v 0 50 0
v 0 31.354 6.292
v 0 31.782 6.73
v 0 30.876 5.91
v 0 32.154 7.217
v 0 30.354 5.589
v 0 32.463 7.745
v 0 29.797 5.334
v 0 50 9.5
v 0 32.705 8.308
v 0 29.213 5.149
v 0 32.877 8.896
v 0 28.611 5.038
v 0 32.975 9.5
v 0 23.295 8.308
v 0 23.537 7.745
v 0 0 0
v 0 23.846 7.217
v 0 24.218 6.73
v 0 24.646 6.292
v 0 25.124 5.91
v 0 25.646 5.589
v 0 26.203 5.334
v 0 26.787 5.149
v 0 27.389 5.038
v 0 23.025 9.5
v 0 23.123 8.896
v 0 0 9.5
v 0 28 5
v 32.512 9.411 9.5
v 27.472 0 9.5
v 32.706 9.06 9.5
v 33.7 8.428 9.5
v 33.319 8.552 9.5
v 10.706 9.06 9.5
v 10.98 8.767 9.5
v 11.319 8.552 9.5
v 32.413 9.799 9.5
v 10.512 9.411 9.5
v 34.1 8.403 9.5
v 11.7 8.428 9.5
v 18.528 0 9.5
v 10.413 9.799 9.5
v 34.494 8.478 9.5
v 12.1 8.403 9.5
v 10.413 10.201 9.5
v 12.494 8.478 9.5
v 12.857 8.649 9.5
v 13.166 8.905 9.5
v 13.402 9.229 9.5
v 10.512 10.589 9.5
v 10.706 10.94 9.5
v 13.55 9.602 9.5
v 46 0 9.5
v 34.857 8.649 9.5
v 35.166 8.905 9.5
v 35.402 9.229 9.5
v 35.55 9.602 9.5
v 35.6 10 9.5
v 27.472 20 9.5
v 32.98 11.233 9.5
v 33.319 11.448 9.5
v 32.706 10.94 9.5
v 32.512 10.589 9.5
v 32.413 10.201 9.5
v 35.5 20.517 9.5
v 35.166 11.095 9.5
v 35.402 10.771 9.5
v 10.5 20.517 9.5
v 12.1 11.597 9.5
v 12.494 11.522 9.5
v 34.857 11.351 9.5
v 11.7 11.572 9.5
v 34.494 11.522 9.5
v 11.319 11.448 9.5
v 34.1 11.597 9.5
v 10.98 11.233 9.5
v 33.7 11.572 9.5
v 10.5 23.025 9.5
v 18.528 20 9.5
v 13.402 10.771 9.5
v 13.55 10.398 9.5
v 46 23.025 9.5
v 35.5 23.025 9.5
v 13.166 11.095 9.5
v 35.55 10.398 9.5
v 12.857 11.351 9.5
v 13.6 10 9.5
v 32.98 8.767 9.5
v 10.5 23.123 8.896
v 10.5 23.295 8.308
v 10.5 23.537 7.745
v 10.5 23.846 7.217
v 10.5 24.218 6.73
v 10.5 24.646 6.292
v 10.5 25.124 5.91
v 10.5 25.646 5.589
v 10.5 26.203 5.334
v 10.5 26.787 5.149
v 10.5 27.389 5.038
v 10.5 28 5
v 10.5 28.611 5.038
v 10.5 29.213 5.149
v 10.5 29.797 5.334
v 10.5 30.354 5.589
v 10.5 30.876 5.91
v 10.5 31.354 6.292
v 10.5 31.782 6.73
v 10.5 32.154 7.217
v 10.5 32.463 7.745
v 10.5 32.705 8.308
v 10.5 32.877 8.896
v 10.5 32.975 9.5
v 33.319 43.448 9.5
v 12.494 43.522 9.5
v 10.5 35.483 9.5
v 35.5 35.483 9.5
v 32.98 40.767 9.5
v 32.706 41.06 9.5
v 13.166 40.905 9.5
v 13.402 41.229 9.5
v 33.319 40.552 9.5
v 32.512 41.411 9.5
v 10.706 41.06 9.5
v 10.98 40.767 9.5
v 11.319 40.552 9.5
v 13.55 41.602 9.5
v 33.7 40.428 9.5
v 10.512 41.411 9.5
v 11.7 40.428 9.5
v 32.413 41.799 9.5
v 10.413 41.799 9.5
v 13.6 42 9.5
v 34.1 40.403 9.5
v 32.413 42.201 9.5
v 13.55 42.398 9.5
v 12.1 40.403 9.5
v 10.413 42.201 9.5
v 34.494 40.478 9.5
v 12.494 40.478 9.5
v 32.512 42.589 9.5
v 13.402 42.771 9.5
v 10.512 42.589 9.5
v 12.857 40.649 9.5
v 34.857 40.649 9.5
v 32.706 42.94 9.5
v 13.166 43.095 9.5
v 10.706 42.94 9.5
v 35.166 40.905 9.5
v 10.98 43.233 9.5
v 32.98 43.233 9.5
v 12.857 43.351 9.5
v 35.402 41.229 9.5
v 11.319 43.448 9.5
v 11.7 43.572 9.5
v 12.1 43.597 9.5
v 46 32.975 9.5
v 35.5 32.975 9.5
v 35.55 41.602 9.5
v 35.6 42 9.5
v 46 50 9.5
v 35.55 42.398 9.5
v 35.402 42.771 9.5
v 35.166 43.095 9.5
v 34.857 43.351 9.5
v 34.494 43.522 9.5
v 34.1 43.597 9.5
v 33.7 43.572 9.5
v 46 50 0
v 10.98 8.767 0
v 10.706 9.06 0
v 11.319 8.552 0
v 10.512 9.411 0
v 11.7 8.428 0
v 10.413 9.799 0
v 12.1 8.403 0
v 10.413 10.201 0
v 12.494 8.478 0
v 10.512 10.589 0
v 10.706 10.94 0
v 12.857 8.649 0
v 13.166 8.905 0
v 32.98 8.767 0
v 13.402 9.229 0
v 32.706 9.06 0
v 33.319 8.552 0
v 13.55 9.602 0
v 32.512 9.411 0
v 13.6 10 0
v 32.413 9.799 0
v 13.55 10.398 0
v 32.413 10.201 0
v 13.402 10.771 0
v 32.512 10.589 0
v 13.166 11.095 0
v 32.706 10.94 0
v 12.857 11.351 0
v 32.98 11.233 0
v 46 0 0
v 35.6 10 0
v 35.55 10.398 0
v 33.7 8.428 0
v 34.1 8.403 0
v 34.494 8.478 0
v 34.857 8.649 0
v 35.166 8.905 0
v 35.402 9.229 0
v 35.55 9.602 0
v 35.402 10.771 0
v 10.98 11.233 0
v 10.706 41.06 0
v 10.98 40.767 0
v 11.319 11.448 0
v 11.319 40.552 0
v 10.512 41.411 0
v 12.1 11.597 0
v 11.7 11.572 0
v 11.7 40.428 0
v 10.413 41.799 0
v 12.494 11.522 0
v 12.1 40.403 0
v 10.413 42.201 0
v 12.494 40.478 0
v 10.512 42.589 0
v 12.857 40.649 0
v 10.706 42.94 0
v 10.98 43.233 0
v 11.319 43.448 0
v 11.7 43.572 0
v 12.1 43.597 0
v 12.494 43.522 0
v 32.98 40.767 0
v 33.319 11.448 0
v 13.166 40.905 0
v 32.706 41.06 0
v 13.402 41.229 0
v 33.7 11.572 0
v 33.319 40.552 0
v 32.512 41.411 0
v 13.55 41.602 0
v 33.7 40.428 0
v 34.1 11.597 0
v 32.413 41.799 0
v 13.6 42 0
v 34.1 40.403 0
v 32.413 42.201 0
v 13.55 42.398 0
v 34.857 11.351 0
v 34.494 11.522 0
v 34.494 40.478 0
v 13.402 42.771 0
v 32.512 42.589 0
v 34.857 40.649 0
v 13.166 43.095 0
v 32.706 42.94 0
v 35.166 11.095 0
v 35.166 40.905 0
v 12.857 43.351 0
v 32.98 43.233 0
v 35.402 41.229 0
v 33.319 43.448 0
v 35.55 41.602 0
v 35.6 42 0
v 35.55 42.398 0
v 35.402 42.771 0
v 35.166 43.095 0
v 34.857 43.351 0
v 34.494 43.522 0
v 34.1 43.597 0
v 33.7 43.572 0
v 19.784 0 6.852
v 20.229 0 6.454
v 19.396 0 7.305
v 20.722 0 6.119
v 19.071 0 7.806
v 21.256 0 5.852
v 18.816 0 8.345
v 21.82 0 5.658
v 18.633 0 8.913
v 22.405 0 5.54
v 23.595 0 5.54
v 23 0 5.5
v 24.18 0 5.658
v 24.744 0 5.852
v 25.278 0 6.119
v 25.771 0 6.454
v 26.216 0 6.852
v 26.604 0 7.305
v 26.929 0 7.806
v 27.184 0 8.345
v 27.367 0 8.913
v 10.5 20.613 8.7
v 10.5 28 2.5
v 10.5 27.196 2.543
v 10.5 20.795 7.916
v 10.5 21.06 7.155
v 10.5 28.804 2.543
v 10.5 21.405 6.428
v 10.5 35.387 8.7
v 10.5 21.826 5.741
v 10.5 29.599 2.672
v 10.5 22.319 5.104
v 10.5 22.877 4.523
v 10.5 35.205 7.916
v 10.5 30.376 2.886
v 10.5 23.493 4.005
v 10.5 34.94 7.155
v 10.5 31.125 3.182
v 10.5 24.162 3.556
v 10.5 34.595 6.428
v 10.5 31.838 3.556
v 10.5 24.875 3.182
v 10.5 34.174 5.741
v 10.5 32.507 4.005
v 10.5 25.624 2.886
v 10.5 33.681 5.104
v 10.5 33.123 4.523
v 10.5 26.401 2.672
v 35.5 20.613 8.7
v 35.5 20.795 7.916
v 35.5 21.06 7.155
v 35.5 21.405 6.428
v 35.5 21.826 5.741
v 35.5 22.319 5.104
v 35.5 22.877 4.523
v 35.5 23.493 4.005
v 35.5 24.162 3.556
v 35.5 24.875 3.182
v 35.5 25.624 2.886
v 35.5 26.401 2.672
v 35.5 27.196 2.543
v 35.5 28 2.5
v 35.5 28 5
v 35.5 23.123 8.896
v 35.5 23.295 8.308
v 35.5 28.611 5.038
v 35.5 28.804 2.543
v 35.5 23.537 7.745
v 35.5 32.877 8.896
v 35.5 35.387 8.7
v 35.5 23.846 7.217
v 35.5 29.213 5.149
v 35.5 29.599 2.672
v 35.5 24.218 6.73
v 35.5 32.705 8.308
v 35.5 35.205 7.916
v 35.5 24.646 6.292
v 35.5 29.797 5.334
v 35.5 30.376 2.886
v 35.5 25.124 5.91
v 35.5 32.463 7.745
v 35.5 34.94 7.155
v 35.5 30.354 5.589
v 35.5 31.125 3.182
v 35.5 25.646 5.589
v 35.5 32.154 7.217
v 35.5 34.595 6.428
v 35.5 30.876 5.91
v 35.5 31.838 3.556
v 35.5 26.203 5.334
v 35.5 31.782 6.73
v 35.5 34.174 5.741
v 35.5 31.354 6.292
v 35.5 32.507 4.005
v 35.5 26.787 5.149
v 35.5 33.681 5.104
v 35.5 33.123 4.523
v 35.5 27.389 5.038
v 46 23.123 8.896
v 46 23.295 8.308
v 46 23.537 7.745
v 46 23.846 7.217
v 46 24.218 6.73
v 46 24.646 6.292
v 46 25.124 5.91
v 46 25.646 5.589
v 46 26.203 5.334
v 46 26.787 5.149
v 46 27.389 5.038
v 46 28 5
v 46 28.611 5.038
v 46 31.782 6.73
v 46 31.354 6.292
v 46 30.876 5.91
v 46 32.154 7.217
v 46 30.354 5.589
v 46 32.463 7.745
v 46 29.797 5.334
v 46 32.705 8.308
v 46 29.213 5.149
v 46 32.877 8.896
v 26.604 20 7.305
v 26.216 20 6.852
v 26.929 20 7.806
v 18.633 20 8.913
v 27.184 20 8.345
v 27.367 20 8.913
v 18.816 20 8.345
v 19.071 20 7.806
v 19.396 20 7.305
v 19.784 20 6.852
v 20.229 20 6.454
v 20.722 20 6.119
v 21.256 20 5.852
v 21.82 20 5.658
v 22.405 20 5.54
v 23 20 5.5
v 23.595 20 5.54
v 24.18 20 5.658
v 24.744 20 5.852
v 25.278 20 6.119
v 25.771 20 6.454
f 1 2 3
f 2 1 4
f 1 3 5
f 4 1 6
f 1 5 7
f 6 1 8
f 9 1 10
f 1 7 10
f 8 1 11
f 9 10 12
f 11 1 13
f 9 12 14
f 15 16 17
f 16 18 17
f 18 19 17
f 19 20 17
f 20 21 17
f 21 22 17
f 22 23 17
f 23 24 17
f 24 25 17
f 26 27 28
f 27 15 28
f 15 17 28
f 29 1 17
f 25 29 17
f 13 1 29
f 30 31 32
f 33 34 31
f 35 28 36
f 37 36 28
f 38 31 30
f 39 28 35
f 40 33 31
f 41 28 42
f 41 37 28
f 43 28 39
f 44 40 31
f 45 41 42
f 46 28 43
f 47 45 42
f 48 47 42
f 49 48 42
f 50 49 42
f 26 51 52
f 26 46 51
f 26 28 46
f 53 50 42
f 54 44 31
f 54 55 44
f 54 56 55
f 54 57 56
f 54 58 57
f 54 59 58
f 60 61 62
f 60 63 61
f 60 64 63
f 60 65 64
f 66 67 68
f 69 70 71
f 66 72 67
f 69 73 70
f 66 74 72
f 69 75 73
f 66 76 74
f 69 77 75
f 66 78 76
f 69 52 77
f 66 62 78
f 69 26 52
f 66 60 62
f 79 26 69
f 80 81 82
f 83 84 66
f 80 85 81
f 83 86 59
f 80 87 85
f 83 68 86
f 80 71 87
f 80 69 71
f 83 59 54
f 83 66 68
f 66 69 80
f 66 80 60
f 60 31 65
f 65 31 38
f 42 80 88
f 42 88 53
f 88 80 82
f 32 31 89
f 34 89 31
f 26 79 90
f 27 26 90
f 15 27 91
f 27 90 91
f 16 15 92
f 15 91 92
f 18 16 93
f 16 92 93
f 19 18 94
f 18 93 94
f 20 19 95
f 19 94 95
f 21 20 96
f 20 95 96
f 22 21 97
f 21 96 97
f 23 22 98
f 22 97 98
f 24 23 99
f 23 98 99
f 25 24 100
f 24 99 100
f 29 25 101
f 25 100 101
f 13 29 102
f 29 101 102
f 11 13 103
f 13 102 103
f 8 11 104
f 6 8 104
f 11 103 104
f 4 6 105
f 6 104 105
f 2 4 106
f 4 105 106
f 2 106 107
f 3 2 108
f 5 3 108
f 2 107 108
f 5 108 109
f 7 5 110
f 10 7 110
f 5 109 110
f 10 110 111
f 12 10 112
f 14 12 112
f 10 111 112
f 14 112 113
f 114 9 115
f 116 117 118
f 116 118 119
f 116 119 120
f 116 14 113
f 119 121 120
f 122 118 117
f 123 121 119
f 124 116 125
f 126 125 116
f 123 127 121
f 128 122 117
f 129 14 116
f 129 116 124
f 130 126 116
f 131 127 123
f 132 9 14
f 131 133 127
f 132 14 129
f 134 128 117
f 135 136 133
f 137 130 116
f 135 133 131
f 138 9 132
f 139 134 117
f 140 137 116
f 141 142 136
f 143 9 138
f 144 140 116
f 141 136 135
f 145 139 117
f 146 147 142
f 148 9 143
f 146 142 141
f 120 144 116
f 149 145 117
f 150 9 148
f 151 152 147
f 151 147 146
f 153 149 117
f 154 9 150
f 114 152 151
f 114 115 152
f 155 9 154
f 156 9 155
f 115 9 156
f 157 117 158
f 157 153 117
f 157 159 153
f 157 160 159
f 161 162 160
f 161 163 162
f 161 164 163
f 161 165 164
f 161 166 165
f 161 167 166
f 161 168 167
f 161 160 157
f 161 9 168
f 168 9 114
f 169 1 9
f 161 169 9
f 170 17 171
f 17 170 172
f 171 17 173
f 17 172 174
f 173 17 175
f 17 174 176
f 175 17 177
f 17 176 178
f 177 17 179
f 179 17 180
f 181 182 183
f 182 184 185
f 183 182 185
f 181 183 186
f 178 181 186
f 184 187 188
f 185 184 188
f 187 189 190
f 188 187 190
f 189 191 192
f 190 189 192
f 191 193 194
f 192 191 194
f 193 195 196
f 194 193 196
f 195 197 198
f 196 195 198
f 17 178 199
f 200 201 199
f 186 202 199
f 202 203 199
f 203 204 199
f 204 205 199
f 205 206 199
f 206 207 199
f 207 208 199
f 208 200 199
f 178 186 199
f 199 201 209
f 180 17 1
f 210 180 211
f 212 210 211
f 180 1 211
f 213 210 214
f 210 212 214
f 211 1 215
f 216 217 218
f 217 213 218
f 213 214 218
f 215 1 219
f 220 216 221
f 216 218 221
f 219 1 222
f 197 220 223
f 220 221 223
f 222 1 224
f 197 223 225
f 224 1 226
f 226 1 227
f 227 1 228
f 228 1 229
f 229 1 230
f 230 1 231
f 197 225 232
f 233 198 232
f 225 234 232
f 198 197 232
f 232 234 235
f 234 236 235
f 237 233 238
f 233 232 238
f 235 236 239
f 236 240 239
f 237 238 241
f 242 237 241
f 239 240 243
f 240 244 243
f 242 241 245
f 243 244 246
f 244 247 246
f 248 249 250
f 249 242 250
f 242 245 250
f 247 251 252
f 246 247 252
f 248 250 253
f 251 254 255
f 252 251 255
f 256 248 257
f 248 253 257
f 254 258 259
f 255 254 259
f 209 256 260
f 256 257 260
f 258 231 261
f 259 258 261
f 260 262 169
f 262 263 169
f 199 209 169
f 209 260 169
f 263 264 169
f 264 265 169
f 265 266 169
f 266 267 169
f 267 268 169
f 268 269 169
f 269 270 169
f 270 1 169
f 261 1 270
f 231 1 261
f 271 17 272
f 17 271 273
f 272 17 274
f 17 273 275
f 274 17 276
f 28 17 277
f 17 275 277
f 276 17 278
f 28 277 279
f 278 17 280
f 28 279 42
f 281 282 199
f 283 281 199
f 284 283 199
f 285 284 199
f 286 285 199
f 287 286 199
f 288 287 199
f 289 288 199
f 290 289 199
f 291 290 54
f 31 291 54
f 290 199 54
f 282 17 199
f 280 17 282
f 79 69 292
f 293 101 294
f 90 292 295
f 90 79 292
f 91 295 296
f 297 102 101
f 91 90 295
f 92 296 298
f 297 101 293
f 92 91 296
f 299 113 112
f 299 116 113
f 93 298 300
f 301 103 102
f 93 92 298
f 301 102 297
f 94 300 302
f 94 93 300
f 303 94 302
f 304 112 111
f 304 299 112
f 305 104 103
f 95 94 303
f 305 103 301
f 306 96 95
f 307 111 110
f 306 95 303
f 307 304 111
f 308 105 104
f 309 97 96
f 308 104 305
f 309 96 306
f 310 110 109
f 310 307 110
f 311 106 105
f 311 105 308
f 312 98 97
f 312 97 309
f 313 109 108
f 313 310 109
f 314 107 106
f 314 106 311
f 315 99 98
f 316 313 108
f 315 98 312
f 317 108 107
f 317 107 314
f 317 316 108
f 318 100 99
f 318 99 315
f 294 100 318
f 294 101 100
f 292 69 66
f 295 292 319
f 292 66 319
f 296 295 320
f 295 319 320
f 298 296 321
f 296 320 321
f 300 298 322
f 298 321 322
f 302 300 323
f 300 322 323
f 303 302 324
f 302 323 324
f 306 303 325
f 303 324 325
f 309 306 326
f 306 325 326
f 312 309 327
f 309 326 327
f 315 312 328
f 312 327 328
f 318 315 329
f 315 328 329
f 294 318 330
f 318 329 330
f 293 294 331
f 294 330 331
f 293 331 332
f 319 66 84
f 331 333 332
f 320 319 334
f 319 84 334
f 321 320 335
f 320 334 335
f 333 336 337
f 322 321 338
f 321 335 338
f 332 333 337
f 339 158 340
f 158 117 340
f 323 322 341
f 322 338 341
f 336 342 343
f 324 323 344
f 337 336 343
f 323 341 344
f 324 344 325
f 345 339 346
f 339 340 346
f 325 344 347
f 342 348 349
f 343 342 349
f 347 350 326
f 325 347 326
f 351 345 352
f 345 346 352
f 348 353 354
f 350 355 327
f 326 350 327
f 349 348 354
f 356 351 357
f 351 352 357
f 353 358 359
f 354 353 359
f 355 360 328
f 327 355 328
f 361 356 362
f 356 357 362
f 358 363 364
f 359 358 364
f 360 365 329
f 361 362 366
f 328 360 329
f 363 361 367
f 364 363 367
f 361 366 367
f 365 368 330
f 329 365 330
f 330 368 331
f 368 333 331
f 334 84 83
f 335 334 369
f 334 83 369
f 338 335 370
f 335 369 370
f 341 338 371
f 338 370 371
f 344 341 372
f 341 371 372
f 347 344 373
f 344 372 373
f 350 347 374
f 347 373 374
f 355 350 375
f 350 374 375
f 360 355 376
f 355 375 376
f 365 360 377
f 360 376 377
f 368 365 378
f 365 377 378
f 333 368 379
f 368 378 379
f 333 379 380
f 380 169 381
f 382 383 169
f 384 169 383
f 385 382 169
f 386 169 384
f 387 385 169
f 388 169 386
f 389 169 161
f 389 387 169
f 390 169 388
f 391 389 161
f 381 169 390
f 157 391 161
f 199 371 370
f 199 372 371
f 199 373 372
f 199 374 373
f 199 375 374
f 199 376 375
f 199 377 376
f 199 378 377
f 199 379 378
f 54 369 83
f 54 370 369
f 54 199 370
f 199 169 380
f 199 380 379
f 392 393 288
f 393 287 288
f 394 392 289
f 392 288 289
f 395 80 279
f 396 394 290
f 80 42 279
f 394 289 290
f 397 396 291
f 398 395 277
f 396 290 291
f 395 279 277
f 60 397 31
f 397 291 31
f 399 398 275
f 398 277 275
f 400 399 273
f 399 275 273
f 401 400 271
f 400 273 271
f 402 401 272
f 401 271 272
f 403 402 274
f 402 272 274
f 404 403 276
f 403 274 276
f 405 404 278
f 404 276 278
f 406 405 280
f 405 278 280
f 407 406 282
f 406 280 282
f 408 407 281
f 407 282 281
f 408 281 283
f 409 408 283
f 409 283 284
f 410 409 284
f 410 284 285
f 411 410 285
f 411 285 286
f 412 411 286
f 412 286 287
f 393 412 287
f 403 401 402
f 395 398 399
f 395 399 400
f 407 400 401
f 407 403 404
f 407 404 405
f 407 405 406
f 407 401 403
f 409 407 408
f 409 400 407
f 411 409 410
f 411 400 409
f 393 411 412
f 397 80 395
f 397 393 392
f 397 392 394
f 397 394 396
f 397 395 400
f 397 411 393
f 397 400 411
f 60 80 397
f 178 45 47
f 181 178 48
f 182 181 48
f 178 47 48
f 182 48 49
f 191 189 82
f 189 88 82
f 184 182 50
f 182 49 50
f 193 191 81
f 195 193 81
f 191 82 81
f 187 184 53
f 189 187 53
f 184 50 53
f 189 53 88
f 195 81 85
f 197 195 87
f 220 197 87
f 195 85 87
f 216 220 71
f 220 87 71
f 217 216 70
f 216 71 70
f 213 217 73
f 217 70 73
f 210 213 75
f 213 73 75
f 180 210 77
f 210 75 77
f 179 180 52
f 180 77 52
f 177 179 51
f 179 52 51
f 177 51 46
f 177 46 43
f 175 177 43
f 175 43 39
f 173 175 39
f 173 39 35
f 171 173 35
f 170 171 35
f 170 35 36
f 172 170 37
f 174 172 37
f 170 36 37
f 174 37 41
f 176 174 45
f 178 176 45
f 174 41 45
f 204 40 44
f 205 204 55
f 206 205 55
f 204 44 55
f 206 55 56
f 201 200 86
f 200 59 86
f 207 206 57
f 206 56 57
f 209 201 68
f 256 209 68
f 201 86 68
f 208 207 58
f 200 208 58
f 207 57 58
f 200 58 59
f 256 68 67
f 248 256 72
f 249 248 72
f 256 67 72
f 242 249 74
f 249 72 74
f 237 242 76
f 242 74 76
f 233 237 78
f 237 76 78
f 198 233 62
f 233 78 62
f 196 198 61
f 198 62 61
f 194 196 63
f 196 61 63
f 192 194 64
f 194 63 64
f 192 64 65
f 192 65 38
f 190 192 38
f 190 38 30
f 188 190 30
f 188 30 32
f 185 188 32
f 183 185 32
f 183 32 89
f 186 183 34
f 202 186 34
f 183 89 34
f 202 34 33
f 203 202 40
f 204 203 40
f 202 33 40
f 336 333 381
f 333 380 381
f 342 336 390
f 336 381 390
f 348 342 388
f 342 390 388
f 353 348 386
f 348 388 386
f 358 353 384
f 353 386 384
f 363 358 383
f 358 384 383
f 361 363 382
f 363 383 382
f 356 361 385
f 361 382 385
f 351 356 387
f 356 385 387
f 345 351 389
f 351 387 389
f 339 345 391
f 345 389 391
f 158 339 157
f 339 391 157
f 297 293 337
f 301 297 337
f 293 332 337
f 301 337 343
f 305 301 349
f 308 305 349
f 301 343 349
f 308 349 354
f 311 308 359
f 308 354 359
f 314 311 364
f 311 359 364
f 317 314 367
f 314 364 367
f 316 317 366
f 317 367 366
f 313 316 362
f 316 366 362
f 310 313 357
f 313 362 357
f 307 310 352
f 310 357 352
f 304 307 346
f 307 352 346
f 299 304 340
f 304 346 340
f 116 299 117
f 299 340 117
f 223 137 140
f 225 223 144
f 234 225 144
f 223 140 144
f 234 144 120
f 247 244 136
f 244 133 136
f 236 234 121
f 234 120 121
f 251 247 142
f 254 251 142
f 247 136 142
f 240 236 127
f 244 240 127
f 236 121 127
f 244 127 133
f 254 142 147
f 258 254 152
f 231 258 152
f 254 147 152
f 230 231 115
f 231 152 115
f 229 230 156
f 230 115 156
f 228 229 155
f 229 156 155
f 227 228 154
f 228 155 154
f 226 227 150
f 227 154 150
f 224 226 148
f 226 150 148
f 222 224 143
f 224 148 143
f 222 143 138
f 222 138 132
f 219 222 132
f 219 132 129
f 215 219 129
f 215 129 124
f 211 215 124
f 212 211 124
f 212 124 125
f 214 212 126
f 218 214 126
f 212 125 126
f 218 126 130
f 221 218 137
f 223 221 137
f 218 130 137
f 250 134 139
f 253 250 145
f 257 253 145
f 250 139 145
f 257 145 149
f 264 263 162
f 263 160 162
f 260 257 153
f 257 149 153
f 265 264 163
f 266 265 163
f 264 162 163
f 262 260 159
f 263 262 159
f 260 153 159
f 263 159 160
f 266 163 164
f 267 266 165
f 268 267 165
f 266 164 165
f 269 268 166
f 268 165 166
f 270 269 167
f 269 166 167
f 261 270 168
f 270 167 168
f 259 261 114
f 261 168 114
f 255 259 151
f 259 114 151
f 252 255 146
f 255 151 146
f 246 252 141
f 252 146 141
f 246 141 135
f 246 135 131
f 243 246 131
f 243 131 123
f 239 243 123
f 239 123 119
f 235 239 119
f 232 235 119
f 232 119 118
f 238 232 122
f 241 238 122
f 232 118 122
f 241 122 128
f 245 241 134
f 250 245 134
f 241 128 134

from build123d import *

# Parameters (mm, degrees)
BOX001_W                = 46
BOX001_H                = 50
BOX001_DEPTH            = 1
CYLINDER006_R           = 7.5
CYLINDER006_DEPTH       = 25
CYLINDER006_PITCH_ANGLE = 90
CYLINDER005_R           = 5
CYLINDER005_DEPTH       = 46
CYLINDER005_PITCH_ANGLE = 90
CYLINDER004_R           = 4.5
CYLINDER004_DEPTH       = 20
CYLINDER004_ROLL_ANGLE  = 90
CYLINDER003_R           = 1.6
CYLINDER003_DEPTH       = 10
CYLINDER002_R           = 1.6
CYLINDER002_DEPTH       = 10
CYLINDER001_R           = 1.6
CYLINDER001_DEPTH       = 10
CYLINDER_R              = 1.6
CYLINDER_DEPTH          = 10
BOX_W                   = 46
BOX_H                   = 50
BOX_DEPTH               = 10


with BuildPart() as cubo001:
    # Box001 → Box001 (new body)
    with BuildSketch(Plane.XY.offset(9.5)):
        with Locations((23, 25)):
            Rectangle(BOX001_W, BOX001_H)
    extrude(amount=BOX001_DEPTH)


with BuildPart() as cilindro006:
    # Cylinder006 → Cylinder006 (new body)
    with BuildSketch(Plane.XY):
        Circle(CYLINDER006_R)
    extrude(amount=CYLINDER006_DEPTH)


with BuildPart() as cilindro006_1:
    # Cylinder006 pitch: moved
    add(cilindro006.part.rotate(Axis((0, 0, 0), (0, 1, 0)), CYLINDER006_PITCH_ANGLE))


with BuildPart() as cilindro006_2:
    # Cylinder006 placement: moved
    add(cilindro006_1.part.moved(Location((10.5, 28, 10))))


with BuildPart() as cilindro005:
    # Cylinder005 → Cylinder005 (new body)
    with BuildSketch(Plane.XY):
        Circle(CYLINDER005_R)
    extrude(amount=CYLINDER005_DEPTH)


with BuildPart() as cilindro005_1:
    # Cylinder005 pitch: moved
    add(cilindro005.part.rotate(Axis((0, 0, 0), (0, 1, 0)), CYLINDER005_PITCH_ANGLE))


with BuildPart() as cilindro005_2:
    # Cylinder005 placement: moved
    add(cilindro005_1.part.moved(Location((0, 28, 10))))


with BuildPart() as cilindro004:
    # Cylinder004 → Cylinder004 (new body)
    with BuildSketch(Plane.XY):
        Circle(CYLINDER004_R)
    extrude(amount=CYLINDER004_DEPTH)


with BuildPart() as cilindro004_1:
    # Cylinder004 roll: moved
    add(cilindro004.part.rotate(Axis((0, 0, 0), (1, 0, 0)), CYLINDER004_ROLL_ANGLE))


with BuildPart() as cilindro004_2:
    # Cylinder004 placement: moved
    add(cilindro004_1.part.moved(Location((23, 20, 10))))


with BuildPart() as cilindro003:
    # Cylinder003 → Cylinder003 (new body)
    with BuildSketch(Plane(origin=(34, 42, 0), x_dir=(1, 0, 0), z_dir=(0, 0, 1))):
        Circle(CYLINDER003_R)
    extrude(amount=CYLINDER003_DEPTH)


with BuildPart() as cilindro002:
    # Cylinder002 → Cylinder002 (new body)
    with BuildSketch(Plane(origin=(12, 42, 0), x_dir=(1, 0, 0), z_dir=(0, 0, 1))):
        Circle(CYLINDER002_R)
    extrude(amount=CYLINDER002_DEPTH)


with BuildPart() as cilindro001:
    # Cylinder001 → Cylinder001 (new body)
    with BuildSketch(Plane(origin=(34, 10, 0), x_dir=(1, 0, 0), z_dir=(0, 0, 1))):
        Circle(CYLINDER001_R)
    extrude(amount=CYLINDER001_DEPTH)


with BuildPart() as cilindro:
    # Cylinder → Cylinder (new body)
    with BuildSketch(Plane(origin=(12, 10, 0), x_dir=(1, 0, 0), z_dir=(0, 0, 1))):
        Circle(CYLINDER_R)
    extrude(amount=CYLINDER_DEPTH)


with BuildPart() as cut007:
    # Box → Box (new body)
    with BuildSketch(Plane.XY):
        with Locations((23, 25)):
            Rectangle(BOX_W, BOX_H)
    extrude(amount=BOX_DEPTH)

    # Cut: cut Cilindro
    add(cilindro.part, mode=Mode.SUBTRACT)

    # Cut001: cut Cilindro001
    add(cilindro001.part, mode=Mode.SUBTRACT)

    # Cut002: cut Cilindro002
    add(cilindro002.part, mode=Mode.SUBTRACT)

    # Cut003: cut Cilindro003
    add(cilindro003.part, mode=Mode.SUBTRACT)

    # Cut004: cut Cilindro004
    add(cilindro004_2.part, mode=Mode.SUBTRACT)

    # Cut005: cut Cilindro005
    add(cilindro005_2.part, mode=Mode.SUBTRACT)

    # Cut006: cut Cilindro006
    add(cilindro006_2.part, mode=Mode.SUBTRACT)

    # Cut007: cut Cubo001
    add(cubo001.part, mode=Mode.SUBTRACT)


solid = cut007.part
